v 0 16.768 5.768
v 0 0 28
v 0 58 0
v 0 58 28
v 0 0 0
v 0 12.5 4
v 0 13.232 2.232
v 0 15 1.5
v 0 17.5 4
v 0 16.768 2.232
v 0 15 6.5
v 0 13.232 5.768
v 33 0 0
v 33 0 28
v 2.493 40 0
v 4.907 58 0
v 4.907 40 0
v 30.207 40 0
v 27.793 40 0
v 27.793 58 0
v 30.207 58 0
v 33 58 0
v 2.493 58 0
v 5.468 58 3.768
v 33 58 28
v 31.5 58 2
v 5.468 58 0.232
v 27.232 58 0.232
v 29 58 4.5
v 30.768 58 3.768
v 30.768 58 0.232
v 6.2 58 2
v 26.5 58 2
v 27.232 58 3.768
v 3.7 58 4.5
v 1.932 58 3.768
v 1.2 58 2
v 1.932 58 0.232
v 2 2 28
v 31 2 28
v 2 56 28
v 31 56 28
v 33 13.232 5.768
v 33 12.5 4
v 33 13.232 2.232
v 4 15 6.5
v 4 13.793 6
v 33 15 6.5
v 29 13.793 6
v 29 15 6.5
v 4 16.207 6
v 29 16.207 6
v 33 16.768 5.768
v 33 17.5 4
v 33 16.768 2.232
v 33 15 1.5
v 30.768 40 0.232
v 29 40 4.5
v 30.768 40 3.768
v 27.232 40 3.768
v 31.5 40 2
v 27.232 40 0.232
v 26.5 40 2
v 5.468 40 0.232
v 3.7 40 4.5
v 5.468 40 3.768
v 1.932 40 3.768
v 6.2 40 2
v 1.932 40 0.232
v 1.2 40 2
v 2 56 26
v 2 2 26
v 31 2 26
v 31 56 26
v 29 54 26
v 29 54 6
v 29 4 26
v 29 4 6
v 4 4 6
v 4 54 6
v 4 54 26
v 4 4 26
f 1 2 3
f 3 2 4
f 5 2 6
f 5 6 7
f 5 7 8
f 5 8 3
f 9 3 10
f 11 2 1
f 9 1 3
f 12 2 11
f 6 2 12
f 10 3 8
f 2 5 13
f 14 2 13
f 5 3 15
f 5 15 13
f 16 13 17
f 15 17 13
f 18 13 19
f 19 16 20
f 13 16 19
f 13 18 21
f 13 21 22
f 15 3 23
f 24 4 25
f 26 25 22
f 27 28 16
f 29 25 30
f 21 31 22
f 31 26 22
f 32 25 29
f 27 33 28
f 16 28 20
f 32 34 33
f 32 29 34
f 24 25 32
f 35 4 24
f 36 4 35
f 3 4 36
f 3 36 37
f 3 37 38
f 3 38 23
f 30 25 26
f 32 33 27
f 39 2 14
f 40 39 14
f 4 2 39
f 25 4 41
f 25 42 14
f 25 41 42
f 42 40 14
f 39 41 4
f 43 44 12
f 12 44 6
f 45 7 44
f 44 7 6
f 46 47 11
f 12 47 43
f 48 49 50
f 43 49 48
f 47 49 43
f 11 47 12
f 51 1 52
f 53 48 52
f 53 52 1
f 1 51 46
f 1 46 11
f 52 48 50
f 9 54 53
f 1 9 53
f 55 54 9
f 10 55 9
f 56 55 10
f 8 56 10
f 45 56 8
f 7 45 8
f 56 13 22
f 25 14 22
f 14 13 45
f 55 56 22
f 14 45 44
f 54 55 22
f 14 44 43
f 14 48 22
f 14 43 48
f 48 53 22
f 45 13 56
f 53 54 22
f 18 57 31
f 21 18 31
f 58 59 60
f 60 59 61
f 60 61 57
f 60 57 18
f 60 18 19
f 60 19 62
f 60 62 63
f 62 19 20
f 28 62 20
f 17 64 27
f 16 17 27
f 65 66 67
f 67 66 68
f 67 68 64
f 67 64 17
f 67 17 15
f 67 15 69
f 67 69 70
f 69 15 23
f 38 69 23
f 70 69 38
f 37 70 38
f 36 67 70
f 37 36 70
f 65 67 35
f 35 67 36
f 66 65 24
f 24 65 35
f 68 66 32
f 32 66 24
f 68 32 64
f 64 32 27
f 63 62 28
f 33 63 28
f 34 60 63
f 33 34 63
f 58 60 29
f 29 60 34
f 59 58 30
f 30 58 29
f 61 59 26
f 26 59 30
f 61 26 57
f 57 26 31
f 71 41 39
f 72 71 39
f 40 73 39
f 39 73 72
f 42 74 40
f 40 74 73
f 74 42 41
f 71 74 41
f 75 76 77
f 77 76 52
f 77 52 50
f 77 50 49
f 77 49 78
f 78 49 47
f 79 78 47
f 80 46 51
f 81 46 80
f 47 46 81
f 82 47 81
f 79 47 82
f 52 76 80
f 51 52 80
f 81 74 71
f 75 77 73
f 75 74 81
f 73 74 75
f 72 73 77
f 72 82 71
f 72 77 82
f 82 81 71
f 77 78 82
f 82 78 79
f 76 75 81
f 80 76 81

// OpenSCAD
difference(){
cube([33,58,28]);
 translate([4,4,6]) cube([25,50,22]);
 translate([2,2,26]) cube([29,54,3]);


 #rotate([0,90,0]) translate([-4,15,-1]) cylinder(35,2.5,2.5);
 rotate([90,90,0]) translate([-2,3.7,-80]) cylinder(40,2.5,2.5);
 rotate([90,90,0]) translate([-2,29,-80]) cylinder(40,2.5,2.5);
}
